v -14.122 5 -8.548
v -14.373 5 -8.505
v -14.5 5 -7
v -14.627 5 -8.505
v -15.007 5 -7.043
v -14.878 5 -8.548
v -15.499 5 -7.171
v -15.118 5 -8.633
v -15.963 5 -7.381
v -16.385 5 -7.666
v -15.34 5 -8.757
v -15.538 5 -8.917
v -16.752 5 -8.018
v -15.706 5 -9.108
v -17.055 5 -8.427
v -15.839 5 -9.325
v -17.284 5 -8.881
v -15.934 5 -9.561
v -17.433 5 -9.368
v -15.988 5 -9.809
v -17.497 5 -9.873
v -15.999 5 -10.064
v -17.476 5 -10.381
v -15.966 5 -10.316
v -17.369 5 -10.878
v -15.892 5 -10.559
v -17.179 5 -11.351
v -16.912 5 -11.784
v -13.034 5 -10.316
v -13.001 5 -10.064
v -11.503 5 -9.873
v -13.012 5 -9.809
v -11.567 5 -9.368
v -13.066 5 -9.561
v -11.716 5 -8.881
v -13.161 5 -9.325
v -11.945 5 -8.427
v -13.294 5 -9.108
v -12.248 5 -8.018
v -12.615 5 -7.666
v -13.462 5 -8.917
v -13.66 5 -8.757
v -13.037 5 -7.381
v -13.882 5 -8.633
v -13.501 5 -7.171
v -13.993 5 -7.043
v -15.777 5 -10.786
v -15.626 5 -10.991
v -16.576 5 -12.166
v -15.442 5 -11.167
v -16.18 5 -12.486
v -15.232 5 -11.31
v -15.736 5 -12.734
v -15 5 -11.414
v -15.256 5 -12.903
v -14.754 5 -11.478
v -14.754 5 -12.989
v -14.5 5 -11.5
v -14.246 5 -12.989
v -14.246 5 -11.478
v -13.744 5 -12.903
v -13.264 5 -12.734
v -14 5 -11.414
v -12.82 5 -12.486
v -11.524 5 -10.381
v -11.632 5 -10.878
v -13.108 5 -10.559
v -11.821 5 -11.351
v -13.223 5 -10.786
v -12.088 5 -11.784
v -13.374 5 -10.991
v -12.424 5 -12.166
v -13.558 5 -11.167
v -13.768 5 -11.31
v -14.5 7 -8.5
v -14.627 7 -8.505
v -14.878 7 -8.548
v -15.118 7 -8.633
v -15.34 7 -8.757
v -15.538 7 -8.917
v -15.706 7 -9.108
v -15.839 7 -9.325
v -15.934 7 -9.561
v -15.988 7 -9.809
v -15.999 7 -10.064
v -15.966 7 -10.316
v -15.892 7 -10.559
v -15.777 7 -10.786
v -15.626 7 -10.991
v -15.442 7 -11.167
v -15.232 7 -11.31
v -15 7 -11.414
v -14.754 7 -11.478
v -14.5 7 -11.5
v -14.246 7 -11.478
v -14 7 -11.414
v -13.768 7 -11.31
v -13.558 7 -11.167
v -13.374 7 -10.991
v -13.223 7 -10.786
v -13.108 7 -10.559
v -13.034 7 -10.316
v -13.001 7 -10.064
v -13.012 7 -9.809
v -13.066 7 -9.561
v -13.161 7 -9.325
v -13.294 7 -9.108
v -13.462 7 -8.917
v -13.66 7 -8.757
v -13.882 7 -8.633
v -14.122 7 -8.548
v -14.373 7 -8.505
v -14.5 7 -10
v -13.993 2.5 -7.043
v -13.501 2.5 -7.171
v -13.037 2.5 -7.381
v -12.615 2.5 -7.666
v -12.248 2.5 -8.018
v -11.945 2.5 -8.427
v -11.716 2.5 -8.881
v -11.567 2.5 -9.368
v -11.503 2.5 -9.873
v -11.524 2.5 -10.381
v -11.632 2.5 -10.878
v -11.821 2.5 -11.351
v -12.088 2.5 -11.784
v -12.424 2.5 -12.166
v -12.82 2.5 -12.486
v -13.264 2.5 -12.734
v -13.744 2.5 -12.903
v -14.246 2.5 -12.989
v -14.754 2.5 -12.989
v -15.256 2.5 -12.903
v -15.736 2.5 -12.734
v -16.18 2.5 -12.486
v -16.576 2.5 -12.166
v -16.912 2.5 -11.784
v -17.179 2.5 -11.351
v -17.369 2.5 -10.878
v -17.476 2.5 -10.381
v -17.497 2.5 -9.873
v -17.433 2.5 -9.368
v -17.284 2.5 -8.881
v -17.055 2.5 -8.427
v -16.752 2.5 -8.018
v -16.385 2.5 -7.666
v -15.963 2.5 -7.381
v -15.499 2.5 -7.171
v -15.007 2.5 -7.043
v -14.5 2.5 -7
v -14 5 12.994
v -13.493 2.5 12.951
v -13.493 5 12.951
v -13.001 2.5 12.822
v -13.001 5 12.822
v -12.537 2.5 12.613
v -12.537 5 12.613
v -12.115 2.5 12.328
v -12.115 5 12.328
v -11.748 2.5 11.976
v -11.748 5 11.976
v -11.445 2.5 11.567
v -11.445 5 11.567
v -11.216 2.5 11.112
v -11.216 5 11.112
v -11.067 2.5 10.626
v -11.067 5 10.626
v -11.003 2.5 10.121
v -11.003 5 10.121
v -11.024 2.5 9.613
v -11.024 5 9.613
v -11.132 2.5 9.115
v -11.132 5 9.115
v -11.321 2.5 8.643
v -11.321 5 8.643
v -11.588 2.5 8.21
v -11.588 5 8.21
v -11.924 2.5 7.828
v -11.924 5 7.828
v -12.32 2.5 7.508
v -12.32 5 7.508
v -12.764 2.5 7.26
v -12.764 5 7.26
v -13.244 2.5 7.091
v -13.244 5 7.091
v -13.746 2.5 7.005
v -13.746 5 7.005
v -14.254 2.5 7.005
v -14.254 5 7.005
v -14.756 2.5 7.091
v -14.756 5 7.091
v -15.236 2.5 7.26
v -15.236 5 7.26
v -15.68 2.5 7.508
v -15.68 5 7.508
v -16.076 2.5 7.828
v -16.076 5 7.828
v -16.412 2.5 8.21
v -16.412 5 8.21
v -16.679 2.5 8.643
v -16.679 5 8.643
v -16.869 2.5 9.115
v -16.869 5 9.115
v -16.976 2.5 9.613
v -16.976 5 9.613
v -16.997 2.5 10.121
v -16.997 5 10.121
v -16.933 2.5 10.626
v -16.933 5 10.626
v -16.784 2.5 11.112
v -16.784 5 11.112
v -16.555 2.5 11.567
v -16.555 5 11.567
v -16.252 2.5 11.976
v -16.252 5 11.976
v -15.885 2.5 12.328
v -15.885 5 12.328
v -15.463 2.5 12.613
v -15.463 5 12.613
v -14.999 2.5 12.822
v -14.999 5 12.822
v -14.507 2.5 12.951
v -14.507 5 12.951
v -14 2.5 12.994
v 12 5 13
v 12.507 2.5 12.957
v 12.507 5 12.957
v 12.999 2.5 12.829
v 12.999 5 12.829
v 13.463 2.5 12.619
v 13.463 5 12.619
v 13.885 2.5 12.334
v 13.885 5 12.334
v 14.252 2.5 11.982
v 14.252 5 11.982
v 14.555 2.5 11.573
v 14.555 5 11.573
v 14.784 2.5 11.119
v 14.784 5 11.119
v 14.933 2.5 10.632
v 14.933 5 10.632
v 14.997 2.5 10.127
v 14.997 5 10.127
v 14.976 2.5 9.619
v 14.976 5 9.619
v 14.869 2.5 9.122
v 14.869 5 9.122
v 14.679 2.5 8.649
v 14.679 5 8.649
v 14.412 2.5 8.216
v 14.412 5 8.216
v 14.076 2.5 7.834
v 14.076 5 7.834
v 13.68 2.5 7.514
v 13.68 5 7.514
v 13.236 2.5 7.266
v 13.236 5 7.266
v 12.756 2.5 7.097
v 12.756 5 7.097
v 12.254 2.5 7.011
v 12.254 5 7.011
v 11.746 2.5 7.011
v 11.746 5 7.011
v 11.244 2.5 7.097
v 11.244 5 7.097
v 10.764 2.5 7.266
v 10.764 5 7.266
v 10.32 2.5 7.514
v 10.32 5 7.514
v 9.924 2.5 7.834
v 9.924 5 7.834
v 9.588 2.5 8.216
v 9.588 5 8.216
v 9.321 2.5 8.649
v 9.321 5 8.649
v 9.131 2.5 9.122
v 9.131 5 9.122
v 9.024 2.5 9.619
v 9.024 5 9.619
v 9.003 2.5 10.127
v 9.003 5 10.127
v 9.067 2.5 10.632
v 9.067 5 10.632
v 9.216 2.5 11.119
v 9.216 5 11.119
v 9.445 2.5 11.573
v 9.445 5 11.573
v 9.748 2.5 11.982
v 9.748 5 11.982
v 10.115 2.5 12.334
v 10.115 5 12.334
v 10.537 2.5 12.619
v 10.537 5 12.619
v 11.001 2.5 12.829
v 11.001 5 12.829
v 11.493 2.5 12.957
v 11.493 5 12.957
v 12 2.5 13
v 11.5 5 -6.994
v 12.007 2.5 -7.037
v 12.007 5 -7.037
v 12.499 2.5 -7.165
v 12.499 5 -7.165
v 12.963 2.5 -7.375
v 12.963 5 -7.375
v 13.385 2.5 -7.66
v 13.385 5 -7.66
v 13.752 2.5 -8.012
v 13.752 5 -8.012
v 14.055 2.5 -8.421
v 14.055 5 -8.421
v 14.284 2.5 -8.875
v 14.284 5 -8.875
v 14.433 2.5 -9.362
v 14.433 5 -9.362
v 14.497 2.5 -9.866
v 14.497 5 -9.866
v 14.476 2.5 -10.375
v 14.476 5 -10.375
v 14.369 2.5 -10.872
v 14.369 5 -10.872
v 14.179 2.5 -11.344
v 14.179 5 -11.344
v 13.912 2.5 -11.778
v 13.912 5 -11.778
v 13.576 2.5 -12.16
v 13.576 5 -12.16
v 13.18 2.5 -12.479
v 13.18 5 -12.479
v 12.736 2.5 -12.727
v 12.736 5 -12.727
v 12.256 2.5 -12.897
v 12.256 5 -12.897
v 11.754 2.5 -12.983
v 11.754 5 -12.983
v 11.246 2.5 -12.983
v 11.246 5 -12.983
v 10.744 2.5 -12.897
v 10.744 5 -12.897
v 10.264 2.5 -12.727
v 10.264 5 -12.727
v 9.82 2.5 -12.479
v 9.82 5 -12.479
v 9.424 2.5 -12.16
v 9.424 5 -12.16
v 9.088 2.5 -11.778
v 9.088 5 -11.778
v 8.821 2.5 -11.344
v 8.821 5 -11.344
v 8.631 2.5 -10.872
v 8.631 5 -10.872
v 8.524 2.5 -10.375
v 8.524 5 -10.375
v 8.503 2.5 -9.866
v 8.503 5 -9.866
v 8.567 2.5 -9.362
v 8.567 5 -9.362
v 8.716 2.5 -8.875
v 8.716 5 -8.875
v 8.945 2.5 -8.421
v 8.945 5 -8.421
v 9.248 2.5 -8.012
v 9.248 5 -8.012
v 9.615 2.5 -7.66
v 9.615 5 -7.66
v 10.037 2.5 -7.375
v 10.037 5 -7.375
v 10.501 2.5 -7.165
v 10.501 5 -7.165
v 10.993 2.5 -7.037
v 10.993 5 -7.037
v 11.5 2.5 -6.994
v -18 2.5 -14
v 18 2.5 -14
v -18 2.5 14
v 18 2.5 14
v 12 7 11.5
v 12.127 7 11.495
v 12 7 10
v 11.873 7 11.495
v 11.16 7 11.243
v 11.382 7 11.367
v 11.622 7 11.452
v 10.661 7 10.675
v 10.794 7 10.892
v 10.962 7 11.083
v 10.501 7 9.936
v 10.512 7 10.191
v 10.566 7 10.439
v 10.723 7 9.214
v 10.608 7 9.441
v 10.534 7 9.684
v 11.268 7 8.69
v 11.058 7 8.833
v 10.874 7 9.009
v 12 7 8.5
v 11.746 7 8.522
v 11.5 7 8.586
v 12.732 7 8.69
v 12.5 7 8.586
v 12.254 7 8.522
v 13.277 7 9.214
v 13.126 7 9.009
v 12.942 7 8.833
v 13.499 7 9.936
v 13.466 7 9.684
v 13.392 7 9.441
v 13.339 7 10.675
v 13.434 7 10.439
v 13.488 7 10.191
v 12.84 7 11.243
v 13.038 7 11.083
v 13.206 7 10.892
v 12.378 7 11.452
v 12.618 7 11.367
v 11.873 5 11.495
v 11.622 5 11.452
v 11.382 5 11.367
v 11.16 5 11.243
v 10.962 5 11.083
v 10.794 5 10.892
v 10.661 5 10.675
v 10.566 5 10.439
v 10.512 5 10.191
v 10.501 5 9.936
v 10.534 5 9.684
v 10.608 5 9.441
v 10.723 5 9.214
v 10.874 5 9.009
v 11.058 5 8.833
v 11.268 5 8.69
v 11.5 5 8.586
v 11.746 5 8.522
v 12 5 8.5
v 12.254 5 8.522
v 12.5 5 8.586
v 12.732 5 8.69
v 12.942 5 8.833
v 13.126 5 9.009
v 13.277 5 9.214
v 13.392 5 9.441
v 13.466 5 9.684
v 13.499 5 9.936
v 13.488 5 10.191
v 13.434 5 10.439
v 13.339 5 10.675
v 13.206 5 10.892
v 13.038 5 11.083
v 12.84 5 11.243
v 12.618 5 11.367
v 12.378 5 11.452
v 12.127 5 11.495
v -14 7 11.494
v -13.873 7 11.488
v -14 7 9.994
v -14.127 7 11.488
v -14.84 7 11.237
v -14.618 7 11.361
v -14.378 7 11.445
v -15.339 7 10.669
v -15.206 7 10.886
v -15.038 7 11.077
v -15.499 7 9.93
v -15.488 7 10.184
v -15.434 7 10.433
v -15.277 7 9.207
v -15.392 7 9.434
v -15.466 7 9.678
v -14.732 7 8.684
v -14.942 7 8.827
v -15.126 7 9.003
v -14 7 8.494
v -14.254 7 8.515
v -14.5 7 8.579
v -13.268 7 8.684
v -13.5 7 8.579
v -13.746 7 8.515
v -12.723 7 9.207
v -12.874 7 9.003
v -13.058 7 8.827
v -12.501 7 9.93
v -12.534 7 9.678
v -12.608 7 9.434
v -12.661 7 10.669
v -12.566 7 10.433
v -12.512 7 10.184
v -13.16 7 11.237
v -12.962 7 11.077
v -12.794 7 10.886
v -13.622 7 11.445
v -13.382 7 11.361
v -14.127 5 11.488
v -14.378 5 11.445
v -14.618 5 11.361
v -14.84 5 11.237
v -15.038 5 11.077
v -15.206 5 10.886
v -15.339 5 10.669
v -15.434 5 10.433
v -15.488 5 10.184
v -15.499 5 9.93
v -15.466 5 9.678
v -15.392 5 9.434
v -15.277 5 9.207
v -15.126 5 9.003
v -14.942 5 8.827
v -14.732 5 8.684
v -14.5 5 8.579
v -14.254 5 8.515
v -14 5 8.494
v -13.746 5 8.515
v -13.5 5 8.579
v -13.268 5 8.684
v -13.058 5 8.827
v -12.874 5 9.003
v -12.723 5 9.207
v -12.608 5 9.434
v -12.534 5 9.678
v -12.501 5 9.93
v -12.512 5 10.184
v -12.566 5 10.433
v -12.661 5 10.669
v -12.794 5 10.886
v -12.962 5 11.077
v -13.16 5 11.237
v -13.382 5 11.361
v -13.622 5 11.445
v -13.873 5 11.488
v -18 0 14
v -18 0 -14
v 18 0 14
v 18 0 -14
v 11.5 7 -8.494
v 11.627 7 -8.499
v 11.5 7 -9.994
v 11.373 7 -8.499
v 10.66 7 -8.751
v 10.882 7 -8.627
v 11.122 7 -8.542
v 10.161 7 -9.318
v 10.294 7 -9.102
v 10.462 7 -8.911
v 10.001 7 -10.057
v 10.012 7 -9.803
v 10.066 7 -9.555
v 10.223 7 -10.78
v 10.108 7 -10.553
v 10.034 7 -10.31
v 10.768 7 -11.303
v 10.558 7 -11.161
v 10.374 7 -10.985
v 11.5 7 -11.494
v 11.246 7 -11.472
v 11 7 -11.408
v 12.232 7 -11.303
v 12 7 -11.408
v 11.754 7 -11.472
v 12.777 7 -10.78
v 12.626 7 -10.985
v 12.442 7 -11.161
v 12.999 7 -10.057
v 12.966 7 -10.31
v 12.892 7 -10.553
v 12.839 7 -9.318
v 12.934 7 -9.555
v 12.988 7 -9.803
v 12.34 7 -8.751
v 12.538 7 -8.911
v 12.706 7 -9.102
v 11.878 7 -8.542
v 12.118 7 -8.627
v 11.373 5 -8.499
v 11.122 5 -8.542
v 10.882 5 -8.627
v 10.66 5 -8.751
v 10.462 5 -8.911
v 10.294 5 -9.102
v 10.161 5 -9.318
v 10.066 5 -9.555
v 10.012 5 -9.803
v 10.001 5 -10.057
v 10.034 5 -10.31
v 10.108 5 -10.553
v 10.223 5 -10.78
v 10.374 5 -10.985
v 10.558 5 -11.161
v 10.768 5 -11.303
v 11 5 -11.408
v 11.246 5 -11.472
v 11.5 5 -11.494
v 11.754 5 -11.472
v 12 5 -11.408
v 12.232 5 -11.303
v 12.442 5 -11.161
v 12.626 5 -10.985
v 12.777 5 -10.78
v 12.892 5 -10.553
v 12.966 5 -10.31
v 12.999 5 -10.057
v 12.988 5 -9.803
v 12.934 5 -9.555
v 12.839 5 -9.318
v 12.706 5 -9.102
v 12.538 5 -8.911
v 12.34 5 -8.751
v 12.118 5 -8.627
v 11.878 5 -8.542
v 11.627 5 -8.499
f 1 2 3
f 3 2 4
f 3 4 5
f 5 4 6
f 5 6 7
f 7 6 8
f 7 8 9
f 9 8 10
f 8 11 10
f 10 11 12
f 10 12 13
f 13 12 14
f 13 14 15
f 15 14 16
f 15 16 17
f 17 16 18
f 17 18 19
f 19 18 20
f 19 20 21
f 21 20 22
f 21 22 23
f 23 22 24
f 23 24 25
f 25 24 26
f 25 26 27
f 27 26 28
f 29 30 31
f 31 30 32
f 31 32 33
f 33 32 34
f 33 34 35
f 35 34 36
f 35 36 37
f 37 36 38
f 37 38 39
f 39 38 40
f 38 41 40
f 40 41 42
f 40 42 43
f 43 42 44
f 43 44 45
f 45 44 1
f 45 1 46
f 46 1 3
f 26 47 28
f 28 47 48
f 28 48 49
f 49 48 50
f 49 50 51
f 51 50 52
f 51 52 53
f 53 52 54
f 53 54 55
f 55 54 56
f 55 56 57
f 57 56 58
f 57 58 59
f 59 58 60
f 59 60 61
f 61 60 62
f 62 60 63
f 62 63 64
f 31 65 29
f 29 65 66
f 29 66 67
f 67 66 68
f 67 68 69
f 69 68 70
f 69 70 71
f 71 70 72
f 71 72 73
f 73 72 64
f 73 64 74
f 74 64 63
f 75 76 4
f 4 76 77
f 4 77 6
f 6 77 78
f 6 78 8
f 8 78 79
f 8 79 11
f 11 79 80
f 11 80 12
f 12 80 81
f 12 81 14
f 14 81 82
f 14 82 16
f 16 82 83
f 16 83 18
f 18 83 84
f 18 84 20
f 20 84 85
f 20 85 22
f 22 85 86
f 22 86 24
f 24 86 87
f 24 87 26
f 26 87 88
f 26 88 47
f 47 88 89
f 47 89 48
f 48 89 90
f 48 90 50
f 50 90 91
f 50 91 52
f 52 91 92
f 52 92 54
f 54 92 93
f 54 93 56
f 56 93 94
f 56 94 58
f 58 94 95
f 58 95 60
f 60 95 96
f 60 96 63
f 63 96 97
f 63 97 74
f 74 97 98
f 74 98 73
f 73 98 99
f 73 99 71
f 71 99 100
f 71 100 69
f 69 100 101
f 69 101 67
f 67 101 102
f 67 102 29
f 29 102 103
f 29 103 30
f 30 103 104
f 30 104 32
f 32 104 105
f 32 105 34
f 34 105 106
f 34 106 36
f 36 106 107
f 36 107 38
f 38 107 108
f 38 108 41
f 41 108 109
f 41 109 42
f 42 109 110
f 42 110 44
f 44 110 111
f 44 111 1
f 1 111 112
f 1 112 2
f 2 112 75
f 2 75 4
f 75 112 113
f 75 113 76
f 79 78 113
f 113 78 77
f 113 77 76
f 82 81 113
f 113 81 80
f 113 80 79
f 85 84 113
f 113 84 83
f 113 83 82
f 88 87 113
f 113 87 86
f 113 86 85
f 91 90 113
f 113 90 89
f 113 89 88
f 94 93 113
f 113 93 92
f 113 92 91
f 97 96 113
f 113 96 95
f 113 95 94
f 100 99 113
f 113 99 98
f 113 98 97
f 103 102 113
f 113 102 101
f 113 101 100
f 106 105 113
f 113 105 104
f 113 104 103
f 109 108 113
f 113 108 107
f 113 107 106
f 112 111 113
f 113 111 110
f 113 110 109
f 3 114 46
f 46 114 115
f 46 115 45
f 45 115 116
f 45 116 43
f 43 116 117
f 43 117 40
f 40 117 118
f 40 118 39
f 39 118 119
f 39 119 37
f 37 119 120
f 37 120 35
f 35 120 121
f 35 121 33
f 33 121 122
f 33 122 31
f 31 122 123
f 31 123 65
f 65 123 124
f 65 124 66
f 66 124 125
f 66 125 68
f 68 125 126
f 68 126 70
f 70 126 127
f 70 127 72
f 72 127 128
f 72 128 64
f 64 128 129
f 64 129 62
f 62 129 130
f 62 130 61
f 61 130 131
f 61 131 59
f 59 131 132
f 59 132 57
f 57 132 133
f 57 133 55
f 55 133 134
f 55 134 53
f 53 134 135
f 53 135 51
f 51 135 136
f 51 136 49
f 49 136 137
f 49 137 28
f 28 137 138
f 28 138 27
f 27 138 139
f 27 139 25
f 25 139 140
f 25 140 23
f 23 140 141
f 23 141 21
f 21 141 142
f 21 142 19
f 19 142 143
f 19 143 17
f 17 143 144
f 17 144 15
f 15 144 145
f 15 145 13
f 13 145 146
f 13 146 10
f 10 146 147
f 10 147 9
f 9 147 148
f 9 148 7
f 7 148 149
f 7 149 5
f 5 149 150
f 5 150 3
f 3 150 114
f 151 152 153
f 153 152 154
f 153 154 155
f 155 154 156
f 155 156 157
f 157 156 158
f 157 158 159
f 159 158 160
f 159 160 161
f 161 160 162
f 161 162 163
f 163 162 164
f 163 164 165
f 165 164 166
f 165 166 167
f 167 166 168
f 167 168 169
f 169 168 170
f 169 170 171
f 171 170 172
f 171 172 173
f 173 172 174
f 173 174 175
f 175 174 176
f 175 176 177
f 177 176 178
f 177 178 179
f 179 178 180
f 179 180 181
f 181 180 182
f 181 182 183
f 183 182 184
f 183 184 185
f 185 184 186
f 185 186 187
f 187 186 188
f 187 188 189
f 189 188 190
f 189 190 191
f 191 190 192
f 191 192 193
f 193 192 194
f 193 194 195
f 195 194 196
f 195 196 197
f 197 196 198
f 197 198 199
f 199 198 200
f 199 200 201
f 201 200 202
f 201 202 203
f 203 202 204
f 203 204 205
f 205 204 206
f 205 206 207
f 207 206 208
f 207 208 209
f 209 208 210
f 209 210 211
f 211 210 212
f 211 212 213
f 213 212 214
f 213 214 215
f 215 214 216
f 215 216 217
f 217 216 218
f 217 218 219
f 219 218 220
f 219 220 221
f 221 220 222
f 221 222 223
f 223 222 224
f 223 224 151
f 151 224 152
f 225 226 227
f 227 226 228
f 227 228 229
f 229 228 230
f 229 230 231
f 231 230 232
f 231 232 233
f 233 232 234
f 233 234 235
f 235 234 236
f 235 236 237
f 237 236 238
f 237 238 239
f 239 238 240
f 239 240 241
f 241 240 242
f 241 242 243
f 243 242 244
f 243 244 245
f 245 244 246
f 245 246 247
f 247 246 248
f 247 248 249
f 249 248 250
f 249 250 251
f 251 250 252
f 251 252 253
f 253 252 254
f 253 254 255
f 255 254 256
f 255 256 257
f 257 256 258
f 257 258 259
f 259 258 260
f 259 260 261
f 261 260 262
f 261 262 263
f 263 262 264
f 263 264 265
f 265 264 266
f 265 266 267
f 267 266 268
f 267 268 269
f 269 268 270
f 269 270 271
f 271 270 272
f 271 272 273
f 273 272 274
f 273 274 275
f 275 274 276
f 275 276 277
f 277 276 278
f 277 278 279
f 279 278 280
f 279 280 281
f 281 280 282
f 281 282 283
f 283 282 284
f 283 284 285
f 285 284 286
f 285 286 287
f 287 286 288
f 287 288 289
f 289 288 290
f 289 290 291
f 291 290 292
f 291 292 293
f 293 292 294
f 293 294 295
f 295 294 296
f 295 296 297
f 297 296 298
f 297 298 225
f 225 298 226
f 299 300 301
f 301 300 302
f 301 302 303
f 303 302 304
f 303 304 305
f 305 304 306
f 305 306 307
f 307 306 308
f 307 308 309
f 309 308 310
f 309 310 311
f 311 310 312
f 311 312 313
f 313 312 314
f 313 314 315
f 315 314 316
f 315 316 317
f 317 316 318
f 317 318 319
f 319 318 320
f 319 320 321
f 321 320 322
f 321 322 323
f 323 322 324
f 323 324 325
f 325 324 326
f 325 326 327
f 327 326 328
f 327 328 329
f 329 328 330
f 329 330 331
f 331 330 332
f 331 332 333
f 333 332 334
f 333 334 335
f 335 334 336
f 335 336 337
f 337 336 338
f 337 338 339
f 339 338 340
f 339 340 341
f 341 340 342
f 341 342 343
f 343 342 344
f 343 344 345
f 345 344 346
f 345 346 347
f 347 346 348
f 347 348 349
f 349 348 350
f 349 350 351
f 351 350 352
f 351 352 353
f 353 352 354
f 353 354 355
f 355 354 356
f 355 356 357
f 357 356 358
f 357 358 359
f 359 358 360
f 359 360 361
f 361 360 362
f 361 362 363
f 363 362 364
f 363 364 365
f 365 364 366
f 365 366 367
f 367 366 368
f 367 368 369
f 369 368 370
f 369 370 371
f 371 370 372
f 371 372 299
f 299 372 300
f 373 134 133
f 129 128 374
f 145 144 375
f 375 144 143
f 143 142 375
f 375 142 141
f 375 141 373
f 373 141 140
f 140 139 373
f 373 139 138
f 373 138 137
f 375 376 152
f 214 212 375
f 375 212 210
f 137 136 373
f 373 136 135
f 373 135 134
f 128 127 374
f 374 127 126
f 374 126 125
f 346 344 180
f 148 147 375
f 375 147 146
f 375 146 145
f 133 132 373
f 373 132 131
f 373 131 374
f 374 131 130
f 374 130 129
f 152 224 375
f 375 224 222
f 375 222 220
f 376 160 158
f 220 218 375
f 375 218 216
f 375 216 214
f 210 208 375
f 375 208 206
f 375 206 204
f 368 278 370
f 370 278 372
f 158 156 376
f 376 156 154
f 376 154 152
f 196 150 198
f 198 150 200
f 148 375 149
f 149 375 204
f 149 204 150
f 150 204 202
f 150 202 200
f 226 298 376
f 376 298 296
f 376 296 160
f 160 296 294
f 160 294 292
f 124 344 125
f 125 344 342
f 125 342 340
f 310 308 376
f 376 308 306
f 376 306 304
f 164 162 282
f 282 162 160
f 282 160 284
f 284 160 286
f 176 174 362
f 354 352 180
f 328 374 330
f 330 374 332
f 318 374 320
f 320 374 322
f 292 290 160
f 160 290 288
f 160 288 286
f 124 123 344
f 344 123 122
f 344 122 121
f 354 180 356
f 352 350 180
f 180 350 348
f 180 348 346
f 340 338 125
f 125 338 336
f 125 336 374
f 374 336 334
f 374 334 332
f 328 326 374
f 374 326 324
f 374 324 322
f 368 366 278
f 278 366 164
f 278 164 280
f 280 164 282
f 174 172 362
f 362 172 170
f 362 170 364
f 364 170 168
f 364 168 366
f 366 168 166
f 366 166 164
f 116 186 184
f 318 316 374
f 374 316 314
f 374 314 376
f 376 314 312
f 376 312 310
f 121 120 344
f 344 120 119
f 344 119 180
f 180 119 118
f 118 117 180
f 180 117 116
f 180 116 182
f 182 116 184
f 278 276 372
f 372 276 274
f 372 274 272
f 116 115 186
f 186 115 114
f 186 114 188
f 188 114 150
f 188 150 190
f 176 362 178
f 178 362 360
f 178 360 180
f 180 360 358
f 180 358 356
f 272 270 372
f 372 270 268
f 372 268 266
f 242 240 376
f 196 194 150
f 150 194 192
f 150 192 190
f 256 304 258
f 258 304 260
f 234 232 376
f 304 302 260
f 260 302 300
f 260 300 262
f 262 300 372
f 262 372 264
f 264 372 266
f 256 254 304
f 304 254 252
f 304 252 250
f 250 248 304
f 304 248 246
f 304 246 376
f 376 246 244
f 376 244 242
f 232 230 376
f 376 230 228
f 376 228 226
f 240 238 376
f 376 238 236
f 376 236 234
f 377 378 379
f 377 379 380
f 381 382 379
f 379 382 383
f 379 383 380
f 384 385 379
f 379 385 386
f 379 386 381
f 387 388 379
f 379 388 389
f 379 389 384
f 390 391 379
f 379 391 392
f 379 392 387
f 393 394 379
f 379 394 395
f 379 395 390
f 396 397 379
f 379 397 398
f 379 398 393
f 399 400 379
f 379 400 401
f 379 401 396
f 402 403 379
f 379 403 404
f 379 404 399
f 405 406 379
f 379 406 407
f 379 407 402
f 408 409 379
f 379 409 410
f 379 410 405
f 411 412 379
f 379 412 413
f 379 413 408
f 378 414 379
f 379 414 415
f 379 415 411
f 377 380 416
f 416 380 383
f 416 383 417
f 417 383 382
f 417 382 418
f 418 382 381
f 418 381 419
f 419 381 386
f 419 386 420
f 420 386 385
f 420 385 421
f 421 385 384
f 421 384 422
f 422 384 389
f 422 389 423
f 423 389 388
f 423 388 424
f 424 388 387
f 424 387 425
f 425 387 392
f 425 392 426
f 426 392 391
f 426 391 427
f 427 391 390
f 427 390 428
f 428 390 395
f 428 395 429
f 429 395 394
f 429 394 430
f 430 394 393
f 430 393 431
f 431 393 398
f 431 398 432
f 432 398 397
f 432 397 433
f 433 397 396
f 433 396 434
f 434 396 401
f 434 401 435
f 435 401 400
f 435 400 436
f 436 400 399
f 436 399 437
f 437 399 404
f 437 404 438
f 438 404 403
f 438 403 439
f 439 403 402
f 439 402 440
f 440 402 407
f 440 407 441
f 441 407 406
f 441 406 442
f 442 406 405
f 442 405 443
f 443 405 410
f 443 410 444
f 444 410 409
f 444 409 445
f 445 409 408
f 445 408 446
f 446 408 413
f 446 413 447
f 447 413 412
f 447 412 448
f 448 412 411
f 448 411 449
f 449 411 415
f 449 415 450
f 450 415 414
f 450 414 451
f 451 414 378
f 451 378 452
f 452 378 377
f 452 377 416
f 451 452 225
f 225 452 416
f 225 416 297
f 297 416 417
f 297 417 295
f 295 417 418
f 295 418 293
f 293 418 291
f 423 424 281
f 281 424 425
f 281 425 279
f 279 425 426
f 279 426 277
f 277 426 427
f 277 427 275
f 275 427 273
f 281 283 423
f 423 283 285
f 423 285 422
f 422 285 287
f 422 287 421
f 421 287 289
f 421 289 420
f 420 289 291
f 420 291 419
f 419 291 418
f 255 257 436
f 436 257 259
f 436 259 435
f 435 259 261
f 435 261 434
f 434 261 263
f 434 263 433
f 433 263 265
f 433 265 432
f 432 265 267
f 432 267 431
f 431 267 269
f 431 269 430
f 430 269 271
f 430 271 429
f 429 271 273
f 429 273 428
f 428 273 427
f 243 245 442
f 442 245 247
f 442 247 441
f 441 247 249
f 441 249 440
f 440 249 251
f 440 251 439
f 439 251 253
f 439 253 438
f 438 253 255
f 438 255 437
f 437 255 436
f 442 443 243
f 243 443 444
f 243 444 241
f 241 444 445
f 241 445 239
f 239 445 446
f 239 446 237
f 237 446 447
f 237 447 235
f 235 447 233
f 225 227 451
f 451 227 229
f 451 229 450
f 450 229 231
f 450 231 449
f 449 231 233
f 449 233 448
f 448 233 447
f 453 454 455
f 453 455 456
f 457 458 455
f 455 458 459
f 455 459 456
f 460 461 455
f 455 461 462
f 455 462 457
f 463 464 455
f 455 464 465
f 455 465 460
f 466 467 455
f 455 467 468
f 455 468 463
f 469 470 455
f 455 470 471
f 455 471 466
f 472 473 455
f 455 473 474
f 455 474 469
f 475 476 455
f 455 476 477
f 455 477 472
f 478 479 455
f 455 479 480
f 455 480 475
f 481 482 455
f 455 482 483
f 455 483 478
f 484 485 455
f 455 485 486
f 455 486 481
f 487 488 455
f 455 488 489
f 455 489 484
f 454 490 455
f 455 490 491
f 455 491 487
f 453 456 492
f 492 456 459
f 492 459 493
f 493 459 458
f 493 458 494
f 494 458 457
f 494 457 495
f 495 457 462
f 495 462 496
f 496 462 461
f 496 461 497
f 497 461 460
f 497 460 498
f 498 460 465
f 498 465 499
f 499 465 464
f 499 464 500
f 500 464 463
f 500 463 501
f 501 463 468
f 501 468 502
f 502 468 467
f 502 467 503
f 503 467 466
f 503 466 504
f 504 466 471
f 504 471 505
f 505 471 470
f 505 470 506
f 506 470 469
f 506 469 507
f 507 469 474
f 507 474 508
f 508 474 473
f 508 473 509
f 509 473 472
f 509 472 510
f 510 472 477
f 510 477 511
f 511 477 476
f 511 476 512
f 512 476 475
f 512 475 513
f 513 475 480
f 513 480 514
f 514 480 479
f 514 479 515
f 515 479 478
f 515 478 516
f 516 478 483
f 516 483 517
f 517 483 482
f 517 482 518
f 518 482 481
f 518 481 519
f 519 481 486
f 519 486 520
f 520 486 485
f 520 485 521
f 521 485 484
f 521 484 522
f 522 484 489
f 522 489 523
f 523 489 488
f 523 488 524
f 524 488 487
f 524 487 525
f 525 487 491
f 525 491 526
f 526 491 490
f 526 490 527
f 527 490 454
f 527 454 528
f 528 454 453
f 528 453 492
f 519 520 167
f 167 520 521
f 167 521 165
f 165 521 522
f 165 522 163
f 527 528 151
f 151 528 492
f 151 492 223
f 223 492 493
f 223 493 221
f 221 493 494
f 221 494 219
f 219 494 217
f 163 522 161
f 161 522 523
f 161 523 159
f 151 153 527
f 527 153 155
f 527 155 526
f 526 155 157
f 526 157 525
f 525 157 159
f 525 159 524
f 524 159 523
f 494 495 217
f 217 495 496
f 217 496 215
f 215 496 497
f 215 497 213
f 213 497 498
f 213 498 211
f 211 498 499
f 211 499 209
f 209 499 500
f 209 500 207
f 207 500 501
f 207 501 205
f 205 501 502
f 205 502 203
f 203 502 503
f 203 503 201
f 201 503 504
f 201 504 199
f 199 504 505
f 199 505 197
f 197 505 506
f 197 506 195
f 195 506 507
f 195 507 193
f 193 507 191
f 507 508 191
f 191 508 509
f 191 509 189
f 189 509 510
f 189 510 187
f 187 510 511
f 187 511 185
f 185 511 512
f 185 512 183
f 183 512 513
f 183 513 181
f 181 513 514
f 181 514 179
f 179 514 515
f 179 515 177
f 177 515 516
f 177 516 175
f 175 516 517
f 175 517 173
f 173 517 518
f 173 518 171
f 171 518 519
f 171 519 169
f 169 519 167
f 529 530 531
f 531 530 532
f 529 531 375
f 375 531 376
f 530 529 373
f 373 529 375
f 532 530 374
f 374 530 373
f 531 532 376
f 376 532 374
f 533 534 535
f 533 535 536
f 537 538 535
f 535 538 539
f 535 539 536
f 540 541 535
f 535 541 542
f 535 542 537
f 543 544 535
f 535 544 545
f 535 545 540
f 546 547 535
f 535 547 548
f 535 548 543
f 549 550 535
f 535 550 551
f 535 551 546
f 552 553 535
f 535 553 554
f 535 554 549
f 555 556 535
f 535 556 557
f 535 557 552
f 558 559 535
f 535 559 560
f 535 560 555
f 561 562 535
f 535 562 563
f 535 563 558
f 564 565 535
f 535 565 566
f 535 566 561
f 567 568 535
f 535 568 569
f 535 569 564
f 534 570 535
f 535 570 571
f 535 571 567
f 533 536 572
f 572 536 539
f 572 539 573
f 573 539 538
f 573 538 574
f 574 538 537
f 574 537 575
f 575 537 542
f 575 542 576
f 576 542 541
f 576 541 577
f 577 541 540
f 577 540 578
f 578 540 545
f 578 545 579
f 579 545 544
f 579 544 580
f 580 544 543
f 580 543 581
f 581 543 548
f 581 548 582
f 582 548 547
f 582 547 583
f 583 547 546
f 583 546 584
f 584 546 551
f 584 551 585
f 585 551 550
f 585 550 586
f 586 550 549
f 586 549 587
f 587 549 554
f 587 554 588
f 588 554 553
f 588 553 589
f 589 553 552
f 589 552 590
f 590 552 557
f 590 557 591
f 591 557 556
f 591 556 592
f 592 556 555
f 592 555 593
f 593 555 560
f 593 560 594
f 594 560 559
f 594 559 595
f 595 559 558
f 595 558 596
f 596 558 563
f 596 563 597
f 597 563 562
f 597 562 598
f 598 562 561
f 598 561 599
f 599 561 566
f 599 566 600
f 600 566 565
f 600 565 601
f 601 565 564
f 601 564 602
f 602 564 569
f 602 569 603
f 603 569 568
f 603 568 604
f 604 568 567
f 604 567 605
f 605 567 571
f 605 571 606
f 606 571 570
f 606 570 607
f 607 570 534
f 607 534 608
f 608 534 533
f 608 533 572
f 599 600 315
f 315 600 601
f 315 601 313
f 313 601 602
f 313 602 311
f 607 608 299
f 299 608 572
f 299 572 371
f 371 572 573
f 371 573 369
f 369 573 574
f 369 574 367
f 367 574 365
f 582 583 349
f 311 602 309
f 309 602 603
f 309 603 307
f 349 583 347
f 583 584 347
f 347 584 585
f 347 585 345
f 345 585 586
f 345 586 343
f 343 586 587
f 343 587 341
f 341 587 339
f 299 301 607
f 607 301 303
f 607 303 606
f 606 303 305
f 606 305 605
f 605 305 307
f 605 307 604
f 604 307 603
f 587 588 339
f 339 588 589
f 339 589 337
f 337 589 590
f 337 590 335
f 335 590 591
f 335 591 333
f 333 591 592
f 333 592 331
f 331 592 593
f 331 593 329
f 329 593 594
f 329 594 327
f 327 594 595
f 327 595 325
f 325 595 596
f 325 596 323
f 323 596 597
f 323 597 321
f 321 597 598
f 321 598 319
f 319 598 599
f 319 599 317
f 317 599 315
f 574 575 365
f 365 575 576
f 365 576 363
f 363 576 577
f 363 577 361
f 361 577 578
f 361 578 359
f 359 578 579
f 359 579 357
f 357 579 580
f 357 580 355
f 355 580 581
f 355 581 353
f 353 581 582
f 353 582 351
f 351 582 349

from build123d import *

# Parameters (mm, degrees)
SKETCH1_W           = 36
SKETCH1_H           = 28
BOSS_EXTRUDE1_DEPTH = 5
SKETCH2_R           = 1.5
BOSS_EXTRUDE2_DEPTH = 2
SKETCH3_W           = 36
SKETCH3_H           = 28
SKETCH3_R           = 3
CUT_EXTRUDE3_DEPTH  = 2.5


with BuildPart() as part:
    # Sketch1 → Boss-Extrude1 (new body)
    with BuildSketch(Plane(origin=(0, 0, 0), x_dir=(1, 0, 0), z_dir=(0, 1, 0))):
        Rectangle(SKETCH1_W, SKETCH1_H)
    extrude(amount=BOSS_EXTRUDE1_DEPTH)

    # Sketch2 → Boss-Extrude2 (add)
    with BuildSketch(Plane(origin=(0, 5, 0), x_dir=(1, 0, 0), z_dir=(0, 1, 0))):
        with Locations(Location((-14.5, 10, 0), (0, 0, 90))):
            Circle(SKETCH2_R)
        with Locations(Location((-14, -9.993749023, 0), (0, 0, 90))):
            Circle(SKETCH2_R)
        with Locations(Location((12, -10, 0), (0, 0, 90))):
            Circle(SKETCH2_R)
        with Locations(Location((11.499999249, 9.993749004, 0), (0, 0, 90))):
            Circle(SKETCH2_R)
    extrude(amount=BOSS_EXTRUDE2_DEPTH)

    # Sketch3 → Cut-Extrude3 (cut)
    with BuildSketch(Plane(origin=(0, 5, 0), x_dir=(1, 0, 0), z_dir=(0, 1, 0))):
        Rectangle(SKETCH3_W, SKETCH3_H)
        with Locations(Location((11.499999249, 9.993749004, 0), (0, 0, 270))):
            Circle(SKETCH3_R, mode=Mode.SUBTRACT)
        with Locations(Location((12, -10, 0), (0, 0, 270))):
            Circle(SKETCH3_R, mode=Mode.SUBTRACT)
        with Locations(Location((-14, -9.993749023, 0), (0, 0, 270))):
            Circle(SKETCH3_R, mode=Mode.SUBTRACT)
        with Locations(Location((-14.5, 10, 0), (0, 0, 270))):
            Circle(SKETCH3_R, mode=Mode.SUBTRACT)
    extrude(amount=-CUT_EXTRUDE3_DEPTH, mode=Mode.SUBTRACT)


solid = part.part
